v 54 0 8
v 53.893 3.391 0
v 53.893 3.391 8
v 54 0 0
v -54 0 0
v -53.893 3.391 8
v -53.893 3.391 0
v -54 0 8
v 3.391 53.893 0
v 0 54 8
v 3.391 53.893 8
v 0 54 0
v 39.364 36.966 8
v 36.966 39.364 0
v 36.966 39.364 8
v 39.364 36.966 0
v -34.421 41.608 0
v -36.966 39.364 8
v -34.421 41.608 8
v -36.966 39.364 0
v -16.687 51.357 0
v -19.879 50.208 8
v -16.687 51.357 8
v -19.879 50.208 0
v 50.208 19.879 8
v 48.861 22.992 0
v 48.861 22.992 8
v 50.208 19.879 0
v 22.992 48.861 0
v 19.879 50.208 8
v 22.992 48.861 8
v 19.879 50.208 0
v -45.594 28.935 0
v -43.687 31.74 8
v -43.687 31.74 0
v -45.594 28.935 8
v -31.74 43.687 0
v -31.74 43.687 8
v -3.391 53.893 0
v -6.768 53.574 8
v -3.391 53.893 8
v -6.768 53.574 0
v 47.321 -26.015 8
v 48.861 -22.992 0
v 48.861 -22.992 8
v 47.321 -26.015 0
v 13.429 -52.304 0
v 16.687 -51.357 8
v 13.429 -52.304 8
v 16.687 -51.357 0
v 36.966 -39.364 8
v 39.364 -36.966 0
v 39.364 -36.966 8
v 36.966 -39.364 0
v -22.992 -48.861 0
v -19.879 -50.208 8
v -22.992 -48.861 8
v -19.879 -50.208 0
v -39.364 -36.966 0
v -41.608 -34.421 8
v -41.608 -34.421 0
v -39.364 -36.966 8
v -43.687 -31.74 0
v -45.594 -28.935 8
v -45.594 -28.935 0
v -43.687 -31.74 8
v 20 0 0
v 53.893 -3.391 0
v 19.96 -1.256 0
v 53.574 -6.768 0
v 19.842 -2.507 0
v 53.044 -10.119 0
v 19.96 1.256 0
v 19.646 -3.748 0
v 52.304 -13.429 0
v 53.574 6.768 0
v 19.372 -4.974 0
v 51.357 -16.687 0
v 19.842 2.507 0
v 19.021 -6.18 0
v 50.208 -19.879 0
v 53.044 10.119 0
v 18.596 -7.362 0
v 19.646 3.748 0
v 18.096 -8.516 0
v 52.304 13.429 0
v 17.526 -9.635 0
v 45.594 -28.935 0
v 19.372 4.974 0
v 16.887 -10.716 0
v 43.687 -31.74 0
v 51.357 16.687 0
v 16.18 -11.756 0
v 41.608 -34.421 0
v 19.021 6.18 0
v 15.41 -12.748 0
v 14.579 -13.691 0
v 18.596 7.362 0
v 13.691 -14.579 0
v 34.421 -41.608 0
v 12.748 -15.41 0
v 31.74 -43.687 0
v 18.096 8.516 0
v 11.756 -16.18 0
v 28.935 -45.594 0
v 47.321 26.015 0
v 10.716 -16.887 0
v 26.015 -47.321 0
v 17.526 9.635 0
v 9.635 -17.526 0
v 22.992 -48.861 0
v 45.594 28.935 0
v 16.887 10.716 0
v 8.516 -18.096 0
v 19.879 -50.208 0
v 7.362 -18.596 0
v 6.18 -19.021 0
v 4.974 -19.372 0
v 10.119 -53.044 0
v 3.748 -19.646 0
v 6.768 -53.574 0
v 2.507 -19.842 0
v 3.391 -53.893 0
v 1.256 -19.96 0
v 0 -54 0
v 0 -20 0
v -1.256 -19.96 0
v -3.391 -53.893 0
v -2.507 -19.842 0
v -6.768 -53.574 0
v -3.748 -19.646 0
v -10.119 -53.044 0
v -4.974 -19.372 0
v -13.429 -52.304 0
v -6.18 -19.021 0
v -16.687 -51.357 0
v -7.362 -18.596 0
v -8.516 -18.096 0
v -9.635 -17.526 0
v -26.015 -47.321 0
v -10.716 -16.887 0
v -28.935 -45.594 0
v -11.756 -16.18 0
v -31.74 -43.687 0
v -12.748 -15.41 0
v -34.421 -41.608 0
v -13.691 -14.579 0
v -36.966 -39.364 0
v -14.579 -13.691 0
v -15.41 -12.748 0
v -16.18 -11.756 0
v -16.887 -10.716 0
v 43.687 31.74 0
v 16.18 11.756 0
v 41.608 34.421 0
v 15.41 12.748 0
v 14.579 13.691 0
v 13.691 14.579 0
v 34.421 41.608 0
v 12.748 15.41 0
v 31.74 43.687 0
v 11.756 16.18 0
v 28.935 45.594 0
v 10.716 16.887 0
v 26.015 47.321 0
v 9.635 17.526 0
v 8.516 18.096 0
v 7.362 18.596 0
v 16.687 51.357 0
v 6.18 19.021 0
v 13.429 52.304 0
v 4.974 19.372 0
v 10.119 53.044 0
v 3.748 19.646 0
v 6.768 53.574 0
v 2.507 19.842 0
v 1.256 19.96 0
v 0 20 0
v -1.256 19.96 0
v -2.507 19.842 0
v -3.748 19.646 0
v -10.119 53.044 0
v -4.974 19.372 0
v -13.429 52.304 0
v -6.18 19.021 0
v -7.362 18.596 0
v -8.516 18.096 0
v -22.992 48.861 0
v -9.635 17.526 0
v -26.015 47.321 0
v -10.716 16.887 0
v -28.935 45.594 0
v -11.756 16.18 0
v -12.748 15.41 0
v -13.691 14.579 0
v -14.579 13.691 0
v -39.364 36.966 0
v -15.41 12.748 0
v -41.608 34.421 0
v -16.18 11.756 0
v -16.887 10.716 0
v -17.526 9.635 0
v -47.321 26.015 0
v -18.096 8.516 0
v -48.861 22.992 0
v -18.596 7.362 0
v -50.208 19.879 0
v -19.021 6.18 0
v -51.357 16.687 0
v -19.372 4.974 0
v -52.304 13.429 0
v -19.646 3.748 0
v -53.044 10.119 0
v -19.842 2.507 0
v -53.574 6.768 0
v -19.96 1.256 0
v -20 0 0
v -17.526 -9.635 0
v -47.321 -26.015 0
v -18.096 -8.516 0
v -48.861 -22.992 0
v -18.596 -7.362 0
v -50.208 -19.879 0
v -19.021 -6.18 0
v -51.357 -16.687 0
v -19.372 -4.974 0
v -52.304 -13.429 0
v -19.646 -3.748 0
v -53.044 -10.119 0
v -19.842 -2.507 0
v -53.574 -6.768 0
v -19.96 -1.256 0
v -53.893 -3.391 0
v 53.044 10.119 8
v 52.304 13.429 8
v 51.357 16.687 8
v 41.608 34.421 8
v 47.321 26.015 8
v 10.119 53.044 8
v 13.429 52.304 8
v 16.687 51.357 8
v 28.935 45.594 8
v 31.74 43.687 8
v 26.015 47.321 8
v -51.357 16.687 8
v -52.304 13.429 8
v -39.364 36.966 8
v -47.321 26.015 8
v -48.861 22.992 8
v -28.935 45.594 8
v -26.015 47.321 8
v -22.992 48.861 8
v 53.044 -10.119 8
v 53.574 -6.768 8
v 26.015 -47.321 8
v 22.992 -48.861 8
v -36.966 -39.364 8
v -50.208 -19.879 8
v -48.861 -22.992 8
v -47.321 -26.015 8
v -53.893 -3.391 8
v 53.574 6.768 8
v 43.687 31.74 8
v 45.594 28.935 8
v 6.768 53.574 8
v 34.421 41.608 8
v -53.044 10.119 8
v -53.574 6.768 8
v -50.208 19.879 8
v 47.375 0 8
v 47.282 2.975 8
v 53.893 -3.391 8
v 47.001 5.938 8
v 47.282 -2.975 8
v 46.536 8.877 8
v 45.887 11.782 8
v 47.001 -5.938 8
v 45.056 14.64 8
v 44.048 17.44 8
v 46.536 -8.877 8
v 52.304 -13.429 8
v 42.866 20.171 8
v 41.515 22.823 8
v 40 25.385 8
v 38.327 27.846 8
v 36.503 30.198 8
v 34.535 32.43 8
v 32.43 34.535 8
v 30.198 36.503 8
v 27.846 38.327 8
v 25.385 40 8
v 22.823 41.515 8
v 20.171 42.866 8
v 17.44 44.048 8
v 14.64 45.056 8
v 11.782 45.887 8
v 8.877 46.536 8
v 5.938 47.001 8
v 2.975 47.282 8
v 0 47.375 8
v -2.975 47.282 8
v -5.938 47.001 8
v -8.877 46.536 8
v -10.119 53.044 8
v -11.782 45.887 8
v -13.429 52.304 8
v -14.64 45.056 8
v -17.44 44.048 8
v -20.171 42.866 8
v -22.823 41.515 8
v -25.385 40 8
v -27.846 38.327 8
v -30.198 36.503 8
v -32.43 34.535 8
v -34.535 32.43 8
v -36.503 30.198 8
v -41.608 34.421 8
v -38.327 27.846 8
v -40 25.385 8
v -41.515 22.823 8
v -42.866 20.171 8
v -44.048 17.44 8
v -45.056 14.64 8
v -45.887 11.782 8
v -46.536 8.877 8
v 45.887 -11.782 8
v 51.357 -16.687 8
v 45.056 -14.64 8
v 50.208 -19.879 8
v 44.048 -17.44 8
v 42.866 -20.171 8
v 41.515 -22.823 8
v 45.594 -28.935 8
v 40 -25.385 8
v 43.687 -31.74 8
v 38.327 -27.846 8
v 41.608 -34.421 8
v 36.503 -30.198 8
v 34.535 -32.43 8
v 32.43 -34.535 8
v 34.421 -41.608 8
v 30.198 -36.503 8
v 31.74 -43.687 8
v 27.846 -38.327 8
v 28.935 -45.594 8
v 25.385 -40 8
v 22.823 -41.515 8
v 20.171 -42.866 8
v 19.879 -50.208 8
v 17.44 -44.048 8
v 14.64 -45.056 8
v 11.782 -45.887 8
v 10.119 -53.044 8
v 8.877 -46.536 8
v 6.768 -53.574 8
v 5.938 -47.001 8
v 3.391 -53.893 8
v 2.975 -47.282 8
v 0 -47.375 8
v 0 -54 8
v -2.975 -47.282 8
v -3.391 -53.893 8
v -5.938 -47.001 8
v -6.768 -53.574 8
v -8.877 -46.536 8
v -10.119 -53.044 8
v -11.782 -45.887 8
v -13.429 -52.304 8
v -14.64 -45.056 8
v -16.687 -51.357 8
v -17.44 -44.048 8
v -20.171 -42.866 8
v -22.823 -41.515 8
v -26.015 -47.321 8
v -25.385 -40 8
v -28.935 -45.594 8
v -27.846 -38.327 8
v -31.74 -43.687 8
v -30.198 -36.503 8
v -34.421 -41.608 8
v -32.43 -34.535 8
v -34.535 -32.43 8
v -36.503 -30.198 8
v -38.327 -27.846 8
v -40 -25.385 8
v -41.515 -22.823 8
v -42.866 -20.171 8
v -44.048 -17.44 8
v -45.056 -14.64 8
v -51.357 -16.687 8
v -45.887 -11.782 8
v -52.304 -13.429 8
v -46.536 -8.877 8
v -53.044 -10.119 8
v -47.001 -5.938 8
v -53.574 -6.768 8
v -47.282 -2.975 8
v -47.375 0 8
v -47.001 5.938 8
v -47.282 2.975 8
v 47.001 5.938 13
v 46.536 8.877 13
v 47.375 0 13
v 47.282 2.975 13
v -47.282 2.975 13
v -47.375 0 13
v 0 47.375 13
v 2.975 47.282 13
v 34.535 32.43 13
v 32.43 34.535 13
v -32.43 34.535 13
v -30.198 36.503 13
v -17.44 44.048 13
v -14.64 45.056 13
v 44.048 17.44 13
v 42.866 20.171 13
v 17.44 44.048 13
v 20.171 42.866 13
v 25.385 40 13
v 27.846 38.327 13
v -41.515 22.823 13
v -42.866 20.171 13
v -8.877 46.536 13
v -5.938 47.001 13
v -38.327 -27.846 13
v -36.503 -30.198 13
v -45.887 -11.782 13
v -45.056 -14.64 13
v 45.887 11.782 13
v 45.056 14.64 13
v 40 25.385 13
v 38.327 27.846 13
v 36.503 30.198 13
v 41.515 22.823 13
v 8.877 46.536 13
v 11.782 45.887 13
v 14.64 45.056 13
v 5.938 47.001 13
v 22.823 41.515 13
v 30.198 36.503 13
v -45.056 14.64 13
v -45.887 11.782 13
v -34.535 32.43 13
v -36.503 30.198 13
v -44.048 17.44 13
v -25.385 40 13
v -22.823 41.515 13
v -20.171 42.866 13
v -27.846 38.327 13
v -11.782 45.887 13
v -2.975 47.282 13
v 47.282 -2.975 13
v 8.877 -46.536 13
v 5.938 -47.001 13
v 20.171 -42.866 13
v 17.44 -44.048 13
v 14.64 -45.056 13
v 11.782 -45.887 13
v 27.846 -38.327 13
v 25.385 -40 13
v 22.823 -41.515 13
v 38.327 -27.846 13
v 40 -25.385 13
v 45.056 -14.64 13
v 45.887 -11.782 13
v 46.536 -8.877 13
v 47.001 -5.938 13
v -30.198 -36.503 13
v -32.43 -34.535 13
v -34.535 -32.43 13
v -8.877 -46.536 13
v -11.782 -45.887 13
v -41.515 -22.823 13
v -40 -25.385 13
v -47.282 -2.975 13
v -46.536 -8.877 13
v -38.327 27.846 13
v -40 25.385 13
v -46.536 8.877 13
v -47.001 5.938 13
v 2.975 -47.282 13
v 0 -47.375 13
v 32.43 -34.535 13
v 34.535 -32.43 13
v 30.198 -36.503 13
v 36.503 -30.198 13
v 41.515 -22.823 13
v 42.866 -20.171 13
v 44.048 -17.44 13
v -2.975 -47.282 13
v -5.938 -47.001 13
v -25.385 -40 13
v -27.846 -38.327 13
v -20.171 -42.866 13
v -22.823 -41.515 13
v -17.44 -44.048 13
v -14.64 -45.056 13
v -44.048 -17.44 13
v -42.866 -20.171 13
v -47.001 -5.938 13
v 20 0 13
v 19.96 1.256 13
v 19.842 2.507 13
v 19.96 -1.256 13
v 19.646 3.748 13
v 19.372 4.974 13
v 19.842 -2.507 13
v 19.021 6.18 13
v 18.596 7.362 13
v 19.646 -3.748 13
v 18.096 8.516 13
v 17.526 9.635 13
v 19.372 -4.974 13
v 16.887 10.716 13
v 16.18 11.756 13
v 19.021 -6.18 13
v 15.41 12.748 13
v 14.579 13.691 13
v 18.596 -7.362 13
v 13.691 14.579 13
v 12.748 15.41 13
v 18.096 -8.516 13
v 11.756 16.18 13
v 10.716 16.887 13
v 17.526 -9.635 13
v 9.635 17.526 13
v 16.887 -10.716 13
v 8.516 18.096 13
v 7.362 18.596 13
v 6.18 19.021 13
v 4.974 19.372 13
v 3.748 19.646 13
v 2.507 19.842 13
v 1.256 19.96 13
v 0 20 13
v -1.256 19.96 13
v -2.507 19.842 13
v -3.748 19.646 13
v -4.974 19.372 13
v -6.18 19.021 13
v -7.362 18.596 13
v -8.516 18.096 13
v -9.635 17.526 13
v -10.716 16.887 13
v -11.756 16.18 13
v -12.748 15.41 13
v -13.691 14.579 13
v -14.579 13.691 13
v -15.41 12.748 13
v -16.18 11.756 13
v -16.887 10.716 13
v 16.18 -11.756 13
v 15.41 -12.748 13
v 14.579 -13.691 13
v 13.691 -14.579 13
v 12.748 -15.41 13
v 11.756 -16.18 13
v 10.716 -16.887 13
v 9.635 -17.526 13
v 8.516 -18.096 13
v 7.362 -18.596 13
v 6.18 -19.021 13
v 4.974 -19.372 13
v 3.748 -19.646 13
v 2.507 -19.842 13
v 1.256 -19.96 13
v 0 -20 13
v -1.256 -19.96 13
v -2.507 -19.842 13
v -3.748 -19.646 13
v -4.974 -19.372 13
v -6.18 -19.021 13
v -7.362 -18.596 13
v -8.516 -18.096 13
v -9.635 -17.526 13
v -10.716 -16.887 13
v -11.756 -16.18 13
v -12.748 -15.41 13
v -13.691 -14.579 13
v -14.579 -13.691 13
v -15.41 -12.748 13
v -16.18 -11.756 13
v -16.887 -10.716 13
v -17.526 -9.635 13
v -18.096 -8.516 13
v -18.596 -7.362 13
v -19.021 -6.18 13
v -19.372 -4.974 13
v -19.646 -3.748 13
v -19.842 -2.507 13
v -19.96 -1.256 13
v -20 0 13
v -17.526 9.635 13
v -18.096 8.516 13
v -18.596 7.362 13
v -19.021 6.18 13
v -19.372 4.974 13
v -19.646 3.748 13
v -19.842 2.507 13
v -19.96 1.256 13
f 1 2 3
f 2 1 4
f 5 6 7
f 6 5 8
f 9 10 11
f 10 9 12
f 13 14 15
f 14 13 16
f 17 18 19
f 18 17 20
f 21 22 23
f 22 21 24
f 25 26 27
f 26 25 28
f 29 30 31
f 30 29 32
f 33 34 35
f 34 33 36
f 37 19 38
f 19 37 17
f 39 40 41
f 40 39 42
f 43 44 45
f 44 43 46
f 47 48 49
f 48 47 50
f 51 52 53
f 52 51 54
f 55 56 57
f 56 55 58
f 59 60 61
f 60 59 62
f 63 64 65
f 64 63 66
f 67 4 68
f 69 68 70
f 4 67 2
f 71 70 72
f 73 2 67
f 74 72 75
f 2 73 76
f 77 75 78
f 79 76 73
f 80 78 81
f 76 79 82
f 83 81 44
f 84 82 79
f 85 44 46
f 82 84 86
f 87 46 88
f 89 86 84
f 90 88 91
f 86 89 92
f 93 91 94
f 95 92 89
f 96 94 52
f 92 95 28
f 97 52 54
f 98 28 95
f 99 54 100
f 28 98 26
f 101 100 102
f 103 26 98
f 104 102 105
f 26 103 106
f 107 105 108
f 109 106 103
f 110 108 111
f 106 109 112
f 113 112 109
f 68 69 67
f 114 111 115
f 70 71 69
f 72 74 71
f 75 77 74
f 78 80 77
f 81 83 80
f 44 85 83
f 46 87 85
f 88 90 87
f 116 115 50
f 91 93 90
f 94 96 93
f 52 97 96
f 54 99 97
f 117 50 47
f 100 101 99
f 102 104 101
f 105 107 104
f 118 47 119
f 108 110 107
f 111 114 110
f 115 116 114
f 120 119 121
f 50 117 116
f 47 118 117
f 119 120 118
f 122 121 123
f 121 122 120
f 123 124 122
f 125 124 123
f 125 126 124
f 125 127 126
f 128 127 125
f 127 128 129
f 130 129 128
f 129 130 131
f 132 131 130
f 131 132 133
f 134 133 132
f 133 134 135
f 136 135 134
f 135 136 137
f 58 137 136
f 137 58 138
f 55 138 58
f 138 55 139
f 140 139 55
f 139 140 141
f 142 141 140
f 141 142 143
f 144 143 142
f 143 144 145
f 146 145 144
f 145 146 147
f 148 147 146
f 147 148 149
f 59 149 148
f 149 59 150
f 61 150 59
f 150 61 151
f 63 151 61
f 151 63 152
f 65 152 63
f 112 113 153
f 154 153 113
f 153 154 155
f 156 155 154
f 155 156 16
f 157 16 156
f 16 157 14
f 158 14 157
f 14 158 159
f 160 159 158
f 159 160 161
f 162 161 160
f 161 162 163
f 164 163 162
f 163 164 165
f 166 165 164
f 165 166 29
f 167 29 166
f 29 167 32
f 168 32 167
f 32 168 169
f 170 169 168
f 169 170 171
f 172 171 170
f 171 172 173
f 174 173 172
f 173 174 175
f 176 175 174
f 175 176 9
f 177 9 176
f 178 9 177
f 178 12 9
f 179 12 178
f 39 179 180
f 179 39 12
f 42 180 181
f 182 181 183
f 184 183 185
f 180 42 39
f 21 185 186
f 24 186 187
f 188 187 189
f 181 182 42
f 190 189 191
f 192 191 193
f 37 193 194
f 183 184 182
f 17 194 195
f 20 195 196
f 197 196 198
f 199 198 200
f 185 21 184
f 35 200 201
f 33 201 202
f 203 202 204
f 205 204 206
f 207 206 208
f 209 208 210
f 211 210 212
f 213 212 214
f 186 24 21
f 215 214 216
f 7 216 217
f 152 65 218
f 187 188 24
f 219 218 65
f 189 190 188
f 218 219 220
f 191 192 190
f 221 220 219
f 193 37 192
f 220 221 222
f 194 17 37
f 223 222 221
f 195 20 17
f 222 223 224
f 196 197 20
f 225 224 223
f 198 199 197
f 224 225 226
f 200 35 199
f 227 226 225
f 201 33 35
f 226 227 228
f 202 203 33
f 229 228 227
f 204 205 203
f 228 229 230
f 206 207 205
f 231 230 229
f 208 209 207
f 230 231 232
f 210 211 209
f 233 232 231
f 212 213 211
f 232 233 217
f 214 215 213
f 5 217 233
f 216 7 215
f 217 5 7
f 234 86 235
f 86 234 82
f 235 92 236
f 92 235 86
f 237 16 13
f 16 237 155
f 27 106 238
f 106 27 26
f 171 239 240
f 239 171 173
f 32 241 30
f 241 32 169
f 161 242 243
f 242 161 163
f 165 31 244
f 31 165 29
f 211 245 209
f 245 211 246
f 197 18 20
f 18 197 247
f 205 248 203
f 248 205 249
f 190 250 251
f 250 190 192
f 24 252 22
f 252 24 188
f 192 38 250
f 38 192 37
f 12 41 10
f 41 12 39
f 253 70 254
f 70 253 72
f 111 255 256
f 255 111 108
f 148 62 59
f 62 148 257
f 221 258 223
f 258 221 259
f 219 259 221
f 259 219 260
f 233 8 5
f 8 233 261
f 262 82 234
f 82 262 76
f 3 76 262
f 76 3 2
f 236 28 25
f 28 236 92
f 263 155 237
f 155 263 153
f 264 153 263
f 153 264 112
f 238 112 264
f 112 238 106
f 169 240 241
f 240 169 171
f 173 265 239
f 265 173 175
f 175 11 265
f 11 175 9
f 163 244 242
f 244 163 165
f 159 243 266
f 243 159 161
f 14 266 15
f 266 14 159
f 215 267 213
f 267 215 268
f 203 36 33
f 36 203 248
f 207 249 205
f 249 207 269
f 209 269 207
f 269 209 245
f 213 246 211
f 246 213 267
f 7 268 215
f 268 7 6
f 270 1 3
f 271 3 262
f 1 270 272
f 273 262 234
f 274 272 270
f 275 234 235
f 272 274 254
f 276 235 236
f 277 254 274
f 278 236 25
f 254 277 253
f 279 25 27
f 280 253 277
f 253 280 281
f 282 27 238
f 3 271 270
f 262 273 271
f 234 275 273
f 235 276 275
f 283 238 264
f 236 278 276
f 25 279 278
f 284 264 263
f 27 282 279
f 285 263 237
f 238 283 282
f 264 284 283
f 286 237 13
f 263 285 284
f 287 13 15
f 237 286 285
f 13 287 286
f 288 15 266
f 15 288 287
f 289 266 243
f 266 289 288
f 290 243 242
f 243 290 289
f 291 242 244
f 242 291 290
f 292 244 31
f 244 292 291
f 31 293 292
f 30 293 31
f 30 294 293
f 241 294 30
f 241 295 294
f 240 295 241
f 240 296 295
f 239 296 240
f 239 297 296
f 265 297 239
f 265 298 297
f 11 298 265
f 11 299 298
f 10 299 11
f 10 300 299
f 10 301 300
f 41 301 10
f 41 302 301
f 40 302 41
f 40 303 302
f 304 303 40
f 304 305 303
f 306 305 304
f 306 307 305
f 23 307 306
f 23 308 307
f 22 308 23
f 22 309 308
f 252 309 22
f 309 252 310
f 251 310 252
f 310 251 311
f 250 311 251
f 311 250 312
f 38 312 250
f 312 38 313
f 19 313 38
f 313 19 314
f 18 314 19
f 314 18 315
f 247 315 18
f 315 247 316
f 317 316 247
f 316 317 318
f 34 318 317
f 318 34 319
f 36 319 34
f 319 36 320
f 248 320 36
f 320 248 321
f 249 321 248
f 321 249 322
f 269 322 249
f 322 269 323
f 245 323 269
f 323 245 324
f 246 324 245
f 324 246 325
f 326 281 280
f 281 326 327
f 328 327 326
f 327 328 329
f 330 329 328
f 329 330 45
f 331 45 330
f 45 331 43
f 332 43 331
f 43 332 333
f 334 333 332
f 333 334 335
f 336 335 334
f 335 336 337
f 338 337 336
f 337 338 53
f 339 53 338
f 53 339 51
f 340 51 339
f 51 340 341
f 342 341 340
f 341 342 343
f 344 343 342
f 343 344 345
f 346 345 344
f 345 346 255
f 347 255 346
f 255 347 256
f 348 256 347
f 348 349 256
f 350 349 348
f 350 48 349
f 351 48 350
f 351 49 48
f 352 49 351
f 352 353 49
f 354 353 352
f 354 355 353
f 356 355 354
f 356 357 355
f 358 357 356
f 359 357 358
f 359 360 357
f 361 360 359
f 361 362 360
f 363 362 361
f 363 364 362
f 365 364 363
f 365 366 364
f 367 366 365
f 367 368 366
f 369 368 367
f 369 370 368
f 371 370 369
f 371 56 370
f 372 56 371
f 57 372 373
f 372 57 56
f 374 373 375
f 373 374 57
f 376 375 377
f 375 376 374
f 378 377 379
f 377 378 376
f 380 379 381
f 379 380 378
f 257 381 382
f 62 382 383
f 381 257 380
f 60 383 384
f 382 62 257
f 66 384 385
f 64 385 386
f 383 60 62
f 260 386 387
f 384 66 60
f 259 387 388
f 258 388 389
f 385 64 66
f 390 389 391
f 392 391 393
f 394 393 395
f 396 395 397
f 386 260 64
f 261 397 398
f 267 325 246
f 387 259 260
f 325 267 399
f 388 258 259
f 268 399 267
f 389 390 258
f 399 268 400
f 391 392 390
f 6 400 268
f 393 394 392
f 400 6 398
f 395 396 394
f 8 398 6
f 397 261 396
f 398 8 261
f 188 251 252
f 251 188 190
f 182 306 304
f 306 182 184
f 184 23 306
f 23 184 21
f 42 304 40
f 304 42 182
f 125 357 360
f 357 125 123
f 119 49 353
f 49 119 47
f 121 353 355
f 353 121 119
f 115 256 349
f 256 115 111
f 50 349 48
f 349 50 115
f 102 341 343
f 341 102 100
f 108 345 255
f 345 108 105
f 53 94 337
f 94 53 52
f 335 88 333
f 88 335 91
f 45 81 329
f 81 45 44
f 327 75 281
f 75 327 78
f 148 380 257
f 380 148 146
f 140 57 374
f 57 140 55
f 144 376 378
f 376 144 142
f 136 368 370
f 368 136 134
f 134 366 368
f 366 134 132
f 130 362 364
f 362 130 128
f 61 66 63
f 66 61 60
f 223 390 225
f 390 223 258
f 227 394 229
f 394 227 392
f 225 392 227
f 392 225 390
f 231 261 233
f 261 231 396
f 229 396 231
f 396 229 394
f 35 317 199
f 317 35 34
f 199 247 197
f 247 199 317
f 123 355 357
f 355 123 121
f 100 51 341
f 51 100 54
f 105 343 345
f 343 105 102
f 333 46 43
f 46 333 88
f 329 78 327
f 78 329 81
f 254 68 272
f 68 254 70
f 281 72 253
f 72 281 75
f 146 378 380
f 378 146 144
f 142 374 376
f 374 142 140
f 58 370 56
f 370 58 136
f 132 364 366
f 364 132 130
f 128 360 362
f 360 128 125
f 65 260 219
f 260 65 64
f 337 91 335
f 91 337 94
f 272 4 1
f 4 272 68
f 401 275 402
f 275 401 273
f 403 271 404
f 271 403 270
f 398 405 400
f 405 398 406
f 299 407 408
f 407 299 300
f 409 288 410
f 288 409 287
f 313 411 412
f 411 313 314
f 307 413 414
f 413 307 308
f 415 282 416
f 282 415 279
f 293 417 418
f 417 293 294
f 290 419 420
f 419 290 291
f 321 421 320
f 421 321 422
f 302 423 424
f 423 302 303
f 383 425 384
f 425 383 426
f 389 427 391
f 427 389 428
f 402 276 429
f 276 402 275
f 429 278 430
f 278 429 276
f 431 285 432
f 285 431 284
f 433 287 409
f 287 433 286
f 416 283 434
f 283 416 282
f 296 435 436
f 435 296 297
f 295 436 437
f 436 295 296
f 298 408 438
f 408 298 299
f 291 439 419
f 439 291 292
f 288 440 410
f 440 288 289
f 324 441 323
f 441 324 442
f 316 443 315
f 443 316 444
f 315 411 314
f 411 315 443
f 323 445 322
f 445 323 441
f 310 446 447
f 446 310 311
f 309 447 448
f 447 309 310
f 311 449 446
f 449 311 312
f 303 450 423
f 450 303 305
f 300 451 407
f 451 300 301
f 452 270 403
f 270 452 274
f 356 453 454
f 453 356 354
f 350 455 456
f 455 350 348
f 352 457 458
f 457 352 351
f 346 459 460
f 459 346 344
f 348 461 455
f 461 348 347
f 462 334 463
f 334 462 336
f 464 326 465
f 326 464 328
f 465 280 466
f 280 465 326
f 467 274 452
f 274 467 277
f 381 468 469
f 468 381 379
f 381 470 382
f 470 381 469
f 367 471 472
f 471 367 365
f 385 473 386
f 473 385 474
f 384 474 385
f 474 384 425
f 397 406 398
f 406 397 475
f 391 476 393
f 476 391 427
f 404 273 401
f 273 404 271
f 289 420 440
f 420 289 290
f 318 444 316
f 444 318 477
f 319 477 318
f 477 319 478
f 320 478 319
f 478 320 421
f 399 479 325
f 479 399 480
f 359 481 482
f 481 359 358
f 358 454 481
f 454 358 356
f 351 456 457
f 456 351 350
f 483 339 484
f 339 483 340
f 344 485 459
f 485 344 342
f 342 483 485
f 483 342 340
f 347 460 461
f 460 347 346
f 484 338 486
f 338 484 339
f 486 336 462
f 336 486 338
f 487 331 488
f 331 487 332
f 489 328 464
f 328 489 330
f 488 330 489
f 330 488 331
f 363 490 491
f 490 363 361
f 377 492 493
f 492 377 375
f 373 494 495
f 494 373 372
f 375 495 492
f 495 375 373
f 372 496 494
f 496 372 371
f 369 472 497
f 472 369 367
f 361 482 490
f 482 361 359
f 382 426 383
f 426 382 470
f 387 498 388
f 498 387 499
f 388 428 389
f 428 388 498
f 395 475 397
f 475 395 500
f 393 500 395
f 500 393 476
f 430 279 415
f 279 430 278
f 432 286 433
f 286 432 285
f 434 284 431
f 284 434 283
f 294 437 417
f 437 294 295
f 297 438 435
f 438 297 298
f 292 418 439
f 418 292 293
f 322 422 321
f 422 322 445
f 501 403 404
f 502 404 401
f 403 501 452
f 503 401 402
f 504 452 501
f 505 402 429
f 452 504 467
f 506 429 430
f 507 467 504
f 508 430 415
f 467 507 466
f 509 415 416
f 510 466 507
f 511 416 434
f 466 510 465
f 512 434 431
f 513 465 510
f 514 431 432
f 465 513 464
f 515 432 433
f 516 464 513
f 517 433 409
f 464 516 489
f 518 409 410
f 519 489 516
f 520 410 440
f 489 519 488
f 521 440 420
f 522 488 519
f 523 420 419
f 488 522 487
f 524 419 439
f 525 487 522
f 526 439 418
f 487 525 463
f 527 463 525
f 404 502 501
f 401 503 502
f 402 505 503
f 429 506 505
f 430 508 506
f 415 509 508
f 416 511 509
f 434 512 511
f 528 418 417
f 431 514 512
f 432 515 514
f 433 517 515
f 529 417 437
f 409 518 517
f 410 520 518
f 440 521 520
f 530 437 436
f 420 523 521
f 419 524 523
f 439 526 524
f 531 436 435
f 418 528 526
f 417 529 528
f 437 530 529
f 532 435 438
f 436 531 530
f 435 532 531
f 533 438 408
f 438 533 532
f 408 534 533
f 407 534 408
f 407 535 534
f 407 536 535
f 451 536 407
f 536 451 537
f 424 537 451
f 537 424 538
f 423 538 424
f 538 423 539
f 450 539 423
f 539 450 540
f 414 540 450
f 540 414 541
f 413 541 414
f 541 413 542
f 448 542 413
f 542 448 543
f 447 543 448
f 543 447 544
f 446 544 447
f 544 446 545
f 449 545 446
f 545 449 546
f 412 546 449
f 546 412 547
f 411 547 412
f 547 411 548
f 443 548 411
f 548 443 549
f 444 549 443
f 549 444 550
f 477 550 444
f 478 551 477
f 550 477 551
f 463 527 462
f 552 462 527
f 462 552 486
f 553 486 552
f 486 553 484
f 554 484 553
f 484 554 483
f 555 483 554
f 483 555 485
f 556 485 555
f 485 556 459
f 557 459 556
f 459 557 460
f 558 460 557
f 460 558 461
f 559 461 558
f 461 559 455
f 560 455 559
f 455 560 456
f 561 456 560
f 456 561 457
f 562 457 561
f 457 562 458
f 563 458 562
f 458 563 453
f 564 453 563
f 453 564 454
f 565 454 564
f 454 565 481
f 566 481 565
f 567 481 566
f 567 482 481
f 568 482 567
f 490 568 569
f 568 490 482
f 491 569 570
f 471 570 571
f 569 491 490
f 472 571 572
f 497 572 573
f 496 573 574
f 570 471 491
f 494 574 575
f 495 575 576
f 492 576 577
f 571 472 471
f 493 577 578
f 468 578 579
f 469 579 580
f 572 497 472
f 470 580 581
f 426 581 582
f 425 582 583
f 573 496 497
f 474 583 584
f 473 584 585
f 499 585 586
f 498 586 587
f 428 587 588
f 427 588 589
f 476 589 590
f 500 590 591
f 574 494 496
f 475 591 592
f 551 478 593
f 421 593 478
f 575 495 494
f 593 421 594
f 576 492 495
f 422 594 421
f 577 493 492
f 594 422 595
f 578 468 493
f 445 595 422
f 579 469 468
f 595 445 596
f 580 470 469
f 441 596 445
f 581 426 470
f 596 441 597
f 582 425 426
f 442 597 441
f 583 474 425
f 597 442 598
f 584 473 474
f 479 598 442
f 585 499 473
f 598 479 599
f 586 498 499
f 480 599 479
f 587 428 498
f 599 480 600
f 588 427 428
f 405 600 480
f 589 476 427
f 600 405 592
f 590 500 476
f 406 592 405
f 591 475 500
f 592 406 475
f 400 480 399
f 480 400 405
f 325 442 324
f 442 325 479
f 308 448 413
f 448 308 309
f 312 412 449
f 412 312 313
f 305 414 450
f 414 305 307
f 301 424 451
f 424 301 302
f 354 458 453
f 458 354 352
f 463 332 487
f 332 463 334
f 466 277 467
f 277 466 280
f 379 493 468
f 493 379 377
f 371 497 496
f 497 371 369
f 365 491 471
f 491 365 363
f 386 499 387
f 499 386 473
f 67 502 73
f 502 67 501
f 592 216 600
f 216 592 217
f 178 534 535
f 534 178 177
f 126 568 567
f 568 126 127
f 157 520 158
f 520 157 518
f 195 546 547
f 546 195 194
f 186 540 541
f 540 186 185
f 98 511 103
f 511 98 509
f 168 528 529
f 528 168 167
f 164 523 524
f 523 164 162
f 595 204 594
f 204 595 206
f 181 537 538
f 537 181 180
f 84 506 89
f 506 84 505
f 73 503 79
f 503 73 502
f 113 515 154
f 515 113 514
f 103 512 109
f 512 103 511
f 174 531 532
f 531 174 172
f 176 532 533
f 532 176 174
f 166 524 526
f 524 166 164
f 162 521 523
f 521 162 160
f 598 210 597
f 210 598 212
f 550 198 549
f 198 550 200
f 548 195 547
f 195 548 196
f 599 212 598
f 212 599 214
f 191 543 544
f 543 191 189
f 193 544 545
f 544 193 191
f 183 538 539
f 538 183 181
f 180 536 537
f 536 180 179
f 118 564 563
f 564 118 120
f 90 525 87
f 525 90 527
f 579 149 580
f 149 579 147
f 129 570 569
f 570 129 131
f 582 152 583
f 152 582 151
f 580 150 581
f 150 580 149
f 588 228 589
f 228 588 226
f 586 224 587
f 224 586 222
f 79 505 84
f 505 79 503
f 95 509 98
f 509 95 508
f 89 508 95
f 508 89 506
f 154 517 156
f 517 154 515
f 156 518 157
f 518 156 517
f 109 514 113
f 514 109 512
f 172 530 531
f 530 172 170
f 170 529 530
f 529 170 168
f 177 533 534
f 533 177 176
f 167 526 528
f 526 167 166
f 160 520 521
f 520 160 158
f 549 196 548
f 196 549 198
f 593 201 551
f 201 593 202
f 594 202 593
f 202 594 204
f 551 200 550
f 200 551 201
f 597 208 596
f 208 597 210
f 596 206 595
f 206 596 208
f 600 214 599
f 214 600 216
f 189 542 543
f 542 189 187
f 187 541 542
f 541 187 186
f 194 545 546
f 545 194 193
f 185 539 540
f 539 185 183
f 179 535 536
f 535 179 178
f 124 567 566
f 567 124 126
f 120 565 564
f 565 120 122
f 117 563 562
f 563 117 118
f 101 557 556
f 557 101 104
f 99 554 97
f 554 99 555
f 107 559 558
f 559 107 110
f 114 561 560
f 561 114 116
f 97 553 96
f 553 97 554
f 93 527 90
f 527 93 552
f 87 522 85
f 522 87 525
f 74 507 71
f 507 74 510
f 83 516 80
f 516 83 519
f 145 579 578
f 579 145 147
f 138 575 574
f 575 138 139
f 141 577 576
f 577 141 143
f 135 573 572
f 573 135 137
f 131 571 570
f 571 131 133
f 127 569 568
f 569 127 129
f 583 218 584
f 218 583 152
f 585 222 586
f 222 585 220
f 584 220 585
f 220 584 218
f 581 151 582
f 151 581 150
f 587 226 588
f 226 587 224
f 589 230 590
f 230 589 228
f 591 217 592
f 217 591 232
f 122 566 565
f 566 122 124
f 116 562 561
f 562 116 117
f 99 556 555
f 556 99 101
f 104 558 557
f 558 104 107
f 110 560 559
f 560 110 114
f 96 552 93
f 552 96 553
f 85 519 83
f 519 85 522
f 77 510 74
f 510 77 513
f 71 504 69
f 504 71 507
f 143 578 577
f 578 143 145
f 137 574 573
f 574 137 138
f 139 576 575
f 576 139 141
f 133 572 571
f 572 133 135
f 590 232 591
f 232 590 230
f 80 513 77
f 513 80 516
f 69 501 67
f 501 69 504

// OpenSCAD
$fn=100;

diameter1=94.75;
height1=5;

diameter2=108;
height2=8;

difference(){
    union(){
        cylinder(r=diameter2/2, h=height2);
        translate([0,0,height2])
            cylinder(r=diameter1/2, h=height1);
    }
    translate([0,0,-2])
        cylinder(r=20, h=height1+height2+4);
}
